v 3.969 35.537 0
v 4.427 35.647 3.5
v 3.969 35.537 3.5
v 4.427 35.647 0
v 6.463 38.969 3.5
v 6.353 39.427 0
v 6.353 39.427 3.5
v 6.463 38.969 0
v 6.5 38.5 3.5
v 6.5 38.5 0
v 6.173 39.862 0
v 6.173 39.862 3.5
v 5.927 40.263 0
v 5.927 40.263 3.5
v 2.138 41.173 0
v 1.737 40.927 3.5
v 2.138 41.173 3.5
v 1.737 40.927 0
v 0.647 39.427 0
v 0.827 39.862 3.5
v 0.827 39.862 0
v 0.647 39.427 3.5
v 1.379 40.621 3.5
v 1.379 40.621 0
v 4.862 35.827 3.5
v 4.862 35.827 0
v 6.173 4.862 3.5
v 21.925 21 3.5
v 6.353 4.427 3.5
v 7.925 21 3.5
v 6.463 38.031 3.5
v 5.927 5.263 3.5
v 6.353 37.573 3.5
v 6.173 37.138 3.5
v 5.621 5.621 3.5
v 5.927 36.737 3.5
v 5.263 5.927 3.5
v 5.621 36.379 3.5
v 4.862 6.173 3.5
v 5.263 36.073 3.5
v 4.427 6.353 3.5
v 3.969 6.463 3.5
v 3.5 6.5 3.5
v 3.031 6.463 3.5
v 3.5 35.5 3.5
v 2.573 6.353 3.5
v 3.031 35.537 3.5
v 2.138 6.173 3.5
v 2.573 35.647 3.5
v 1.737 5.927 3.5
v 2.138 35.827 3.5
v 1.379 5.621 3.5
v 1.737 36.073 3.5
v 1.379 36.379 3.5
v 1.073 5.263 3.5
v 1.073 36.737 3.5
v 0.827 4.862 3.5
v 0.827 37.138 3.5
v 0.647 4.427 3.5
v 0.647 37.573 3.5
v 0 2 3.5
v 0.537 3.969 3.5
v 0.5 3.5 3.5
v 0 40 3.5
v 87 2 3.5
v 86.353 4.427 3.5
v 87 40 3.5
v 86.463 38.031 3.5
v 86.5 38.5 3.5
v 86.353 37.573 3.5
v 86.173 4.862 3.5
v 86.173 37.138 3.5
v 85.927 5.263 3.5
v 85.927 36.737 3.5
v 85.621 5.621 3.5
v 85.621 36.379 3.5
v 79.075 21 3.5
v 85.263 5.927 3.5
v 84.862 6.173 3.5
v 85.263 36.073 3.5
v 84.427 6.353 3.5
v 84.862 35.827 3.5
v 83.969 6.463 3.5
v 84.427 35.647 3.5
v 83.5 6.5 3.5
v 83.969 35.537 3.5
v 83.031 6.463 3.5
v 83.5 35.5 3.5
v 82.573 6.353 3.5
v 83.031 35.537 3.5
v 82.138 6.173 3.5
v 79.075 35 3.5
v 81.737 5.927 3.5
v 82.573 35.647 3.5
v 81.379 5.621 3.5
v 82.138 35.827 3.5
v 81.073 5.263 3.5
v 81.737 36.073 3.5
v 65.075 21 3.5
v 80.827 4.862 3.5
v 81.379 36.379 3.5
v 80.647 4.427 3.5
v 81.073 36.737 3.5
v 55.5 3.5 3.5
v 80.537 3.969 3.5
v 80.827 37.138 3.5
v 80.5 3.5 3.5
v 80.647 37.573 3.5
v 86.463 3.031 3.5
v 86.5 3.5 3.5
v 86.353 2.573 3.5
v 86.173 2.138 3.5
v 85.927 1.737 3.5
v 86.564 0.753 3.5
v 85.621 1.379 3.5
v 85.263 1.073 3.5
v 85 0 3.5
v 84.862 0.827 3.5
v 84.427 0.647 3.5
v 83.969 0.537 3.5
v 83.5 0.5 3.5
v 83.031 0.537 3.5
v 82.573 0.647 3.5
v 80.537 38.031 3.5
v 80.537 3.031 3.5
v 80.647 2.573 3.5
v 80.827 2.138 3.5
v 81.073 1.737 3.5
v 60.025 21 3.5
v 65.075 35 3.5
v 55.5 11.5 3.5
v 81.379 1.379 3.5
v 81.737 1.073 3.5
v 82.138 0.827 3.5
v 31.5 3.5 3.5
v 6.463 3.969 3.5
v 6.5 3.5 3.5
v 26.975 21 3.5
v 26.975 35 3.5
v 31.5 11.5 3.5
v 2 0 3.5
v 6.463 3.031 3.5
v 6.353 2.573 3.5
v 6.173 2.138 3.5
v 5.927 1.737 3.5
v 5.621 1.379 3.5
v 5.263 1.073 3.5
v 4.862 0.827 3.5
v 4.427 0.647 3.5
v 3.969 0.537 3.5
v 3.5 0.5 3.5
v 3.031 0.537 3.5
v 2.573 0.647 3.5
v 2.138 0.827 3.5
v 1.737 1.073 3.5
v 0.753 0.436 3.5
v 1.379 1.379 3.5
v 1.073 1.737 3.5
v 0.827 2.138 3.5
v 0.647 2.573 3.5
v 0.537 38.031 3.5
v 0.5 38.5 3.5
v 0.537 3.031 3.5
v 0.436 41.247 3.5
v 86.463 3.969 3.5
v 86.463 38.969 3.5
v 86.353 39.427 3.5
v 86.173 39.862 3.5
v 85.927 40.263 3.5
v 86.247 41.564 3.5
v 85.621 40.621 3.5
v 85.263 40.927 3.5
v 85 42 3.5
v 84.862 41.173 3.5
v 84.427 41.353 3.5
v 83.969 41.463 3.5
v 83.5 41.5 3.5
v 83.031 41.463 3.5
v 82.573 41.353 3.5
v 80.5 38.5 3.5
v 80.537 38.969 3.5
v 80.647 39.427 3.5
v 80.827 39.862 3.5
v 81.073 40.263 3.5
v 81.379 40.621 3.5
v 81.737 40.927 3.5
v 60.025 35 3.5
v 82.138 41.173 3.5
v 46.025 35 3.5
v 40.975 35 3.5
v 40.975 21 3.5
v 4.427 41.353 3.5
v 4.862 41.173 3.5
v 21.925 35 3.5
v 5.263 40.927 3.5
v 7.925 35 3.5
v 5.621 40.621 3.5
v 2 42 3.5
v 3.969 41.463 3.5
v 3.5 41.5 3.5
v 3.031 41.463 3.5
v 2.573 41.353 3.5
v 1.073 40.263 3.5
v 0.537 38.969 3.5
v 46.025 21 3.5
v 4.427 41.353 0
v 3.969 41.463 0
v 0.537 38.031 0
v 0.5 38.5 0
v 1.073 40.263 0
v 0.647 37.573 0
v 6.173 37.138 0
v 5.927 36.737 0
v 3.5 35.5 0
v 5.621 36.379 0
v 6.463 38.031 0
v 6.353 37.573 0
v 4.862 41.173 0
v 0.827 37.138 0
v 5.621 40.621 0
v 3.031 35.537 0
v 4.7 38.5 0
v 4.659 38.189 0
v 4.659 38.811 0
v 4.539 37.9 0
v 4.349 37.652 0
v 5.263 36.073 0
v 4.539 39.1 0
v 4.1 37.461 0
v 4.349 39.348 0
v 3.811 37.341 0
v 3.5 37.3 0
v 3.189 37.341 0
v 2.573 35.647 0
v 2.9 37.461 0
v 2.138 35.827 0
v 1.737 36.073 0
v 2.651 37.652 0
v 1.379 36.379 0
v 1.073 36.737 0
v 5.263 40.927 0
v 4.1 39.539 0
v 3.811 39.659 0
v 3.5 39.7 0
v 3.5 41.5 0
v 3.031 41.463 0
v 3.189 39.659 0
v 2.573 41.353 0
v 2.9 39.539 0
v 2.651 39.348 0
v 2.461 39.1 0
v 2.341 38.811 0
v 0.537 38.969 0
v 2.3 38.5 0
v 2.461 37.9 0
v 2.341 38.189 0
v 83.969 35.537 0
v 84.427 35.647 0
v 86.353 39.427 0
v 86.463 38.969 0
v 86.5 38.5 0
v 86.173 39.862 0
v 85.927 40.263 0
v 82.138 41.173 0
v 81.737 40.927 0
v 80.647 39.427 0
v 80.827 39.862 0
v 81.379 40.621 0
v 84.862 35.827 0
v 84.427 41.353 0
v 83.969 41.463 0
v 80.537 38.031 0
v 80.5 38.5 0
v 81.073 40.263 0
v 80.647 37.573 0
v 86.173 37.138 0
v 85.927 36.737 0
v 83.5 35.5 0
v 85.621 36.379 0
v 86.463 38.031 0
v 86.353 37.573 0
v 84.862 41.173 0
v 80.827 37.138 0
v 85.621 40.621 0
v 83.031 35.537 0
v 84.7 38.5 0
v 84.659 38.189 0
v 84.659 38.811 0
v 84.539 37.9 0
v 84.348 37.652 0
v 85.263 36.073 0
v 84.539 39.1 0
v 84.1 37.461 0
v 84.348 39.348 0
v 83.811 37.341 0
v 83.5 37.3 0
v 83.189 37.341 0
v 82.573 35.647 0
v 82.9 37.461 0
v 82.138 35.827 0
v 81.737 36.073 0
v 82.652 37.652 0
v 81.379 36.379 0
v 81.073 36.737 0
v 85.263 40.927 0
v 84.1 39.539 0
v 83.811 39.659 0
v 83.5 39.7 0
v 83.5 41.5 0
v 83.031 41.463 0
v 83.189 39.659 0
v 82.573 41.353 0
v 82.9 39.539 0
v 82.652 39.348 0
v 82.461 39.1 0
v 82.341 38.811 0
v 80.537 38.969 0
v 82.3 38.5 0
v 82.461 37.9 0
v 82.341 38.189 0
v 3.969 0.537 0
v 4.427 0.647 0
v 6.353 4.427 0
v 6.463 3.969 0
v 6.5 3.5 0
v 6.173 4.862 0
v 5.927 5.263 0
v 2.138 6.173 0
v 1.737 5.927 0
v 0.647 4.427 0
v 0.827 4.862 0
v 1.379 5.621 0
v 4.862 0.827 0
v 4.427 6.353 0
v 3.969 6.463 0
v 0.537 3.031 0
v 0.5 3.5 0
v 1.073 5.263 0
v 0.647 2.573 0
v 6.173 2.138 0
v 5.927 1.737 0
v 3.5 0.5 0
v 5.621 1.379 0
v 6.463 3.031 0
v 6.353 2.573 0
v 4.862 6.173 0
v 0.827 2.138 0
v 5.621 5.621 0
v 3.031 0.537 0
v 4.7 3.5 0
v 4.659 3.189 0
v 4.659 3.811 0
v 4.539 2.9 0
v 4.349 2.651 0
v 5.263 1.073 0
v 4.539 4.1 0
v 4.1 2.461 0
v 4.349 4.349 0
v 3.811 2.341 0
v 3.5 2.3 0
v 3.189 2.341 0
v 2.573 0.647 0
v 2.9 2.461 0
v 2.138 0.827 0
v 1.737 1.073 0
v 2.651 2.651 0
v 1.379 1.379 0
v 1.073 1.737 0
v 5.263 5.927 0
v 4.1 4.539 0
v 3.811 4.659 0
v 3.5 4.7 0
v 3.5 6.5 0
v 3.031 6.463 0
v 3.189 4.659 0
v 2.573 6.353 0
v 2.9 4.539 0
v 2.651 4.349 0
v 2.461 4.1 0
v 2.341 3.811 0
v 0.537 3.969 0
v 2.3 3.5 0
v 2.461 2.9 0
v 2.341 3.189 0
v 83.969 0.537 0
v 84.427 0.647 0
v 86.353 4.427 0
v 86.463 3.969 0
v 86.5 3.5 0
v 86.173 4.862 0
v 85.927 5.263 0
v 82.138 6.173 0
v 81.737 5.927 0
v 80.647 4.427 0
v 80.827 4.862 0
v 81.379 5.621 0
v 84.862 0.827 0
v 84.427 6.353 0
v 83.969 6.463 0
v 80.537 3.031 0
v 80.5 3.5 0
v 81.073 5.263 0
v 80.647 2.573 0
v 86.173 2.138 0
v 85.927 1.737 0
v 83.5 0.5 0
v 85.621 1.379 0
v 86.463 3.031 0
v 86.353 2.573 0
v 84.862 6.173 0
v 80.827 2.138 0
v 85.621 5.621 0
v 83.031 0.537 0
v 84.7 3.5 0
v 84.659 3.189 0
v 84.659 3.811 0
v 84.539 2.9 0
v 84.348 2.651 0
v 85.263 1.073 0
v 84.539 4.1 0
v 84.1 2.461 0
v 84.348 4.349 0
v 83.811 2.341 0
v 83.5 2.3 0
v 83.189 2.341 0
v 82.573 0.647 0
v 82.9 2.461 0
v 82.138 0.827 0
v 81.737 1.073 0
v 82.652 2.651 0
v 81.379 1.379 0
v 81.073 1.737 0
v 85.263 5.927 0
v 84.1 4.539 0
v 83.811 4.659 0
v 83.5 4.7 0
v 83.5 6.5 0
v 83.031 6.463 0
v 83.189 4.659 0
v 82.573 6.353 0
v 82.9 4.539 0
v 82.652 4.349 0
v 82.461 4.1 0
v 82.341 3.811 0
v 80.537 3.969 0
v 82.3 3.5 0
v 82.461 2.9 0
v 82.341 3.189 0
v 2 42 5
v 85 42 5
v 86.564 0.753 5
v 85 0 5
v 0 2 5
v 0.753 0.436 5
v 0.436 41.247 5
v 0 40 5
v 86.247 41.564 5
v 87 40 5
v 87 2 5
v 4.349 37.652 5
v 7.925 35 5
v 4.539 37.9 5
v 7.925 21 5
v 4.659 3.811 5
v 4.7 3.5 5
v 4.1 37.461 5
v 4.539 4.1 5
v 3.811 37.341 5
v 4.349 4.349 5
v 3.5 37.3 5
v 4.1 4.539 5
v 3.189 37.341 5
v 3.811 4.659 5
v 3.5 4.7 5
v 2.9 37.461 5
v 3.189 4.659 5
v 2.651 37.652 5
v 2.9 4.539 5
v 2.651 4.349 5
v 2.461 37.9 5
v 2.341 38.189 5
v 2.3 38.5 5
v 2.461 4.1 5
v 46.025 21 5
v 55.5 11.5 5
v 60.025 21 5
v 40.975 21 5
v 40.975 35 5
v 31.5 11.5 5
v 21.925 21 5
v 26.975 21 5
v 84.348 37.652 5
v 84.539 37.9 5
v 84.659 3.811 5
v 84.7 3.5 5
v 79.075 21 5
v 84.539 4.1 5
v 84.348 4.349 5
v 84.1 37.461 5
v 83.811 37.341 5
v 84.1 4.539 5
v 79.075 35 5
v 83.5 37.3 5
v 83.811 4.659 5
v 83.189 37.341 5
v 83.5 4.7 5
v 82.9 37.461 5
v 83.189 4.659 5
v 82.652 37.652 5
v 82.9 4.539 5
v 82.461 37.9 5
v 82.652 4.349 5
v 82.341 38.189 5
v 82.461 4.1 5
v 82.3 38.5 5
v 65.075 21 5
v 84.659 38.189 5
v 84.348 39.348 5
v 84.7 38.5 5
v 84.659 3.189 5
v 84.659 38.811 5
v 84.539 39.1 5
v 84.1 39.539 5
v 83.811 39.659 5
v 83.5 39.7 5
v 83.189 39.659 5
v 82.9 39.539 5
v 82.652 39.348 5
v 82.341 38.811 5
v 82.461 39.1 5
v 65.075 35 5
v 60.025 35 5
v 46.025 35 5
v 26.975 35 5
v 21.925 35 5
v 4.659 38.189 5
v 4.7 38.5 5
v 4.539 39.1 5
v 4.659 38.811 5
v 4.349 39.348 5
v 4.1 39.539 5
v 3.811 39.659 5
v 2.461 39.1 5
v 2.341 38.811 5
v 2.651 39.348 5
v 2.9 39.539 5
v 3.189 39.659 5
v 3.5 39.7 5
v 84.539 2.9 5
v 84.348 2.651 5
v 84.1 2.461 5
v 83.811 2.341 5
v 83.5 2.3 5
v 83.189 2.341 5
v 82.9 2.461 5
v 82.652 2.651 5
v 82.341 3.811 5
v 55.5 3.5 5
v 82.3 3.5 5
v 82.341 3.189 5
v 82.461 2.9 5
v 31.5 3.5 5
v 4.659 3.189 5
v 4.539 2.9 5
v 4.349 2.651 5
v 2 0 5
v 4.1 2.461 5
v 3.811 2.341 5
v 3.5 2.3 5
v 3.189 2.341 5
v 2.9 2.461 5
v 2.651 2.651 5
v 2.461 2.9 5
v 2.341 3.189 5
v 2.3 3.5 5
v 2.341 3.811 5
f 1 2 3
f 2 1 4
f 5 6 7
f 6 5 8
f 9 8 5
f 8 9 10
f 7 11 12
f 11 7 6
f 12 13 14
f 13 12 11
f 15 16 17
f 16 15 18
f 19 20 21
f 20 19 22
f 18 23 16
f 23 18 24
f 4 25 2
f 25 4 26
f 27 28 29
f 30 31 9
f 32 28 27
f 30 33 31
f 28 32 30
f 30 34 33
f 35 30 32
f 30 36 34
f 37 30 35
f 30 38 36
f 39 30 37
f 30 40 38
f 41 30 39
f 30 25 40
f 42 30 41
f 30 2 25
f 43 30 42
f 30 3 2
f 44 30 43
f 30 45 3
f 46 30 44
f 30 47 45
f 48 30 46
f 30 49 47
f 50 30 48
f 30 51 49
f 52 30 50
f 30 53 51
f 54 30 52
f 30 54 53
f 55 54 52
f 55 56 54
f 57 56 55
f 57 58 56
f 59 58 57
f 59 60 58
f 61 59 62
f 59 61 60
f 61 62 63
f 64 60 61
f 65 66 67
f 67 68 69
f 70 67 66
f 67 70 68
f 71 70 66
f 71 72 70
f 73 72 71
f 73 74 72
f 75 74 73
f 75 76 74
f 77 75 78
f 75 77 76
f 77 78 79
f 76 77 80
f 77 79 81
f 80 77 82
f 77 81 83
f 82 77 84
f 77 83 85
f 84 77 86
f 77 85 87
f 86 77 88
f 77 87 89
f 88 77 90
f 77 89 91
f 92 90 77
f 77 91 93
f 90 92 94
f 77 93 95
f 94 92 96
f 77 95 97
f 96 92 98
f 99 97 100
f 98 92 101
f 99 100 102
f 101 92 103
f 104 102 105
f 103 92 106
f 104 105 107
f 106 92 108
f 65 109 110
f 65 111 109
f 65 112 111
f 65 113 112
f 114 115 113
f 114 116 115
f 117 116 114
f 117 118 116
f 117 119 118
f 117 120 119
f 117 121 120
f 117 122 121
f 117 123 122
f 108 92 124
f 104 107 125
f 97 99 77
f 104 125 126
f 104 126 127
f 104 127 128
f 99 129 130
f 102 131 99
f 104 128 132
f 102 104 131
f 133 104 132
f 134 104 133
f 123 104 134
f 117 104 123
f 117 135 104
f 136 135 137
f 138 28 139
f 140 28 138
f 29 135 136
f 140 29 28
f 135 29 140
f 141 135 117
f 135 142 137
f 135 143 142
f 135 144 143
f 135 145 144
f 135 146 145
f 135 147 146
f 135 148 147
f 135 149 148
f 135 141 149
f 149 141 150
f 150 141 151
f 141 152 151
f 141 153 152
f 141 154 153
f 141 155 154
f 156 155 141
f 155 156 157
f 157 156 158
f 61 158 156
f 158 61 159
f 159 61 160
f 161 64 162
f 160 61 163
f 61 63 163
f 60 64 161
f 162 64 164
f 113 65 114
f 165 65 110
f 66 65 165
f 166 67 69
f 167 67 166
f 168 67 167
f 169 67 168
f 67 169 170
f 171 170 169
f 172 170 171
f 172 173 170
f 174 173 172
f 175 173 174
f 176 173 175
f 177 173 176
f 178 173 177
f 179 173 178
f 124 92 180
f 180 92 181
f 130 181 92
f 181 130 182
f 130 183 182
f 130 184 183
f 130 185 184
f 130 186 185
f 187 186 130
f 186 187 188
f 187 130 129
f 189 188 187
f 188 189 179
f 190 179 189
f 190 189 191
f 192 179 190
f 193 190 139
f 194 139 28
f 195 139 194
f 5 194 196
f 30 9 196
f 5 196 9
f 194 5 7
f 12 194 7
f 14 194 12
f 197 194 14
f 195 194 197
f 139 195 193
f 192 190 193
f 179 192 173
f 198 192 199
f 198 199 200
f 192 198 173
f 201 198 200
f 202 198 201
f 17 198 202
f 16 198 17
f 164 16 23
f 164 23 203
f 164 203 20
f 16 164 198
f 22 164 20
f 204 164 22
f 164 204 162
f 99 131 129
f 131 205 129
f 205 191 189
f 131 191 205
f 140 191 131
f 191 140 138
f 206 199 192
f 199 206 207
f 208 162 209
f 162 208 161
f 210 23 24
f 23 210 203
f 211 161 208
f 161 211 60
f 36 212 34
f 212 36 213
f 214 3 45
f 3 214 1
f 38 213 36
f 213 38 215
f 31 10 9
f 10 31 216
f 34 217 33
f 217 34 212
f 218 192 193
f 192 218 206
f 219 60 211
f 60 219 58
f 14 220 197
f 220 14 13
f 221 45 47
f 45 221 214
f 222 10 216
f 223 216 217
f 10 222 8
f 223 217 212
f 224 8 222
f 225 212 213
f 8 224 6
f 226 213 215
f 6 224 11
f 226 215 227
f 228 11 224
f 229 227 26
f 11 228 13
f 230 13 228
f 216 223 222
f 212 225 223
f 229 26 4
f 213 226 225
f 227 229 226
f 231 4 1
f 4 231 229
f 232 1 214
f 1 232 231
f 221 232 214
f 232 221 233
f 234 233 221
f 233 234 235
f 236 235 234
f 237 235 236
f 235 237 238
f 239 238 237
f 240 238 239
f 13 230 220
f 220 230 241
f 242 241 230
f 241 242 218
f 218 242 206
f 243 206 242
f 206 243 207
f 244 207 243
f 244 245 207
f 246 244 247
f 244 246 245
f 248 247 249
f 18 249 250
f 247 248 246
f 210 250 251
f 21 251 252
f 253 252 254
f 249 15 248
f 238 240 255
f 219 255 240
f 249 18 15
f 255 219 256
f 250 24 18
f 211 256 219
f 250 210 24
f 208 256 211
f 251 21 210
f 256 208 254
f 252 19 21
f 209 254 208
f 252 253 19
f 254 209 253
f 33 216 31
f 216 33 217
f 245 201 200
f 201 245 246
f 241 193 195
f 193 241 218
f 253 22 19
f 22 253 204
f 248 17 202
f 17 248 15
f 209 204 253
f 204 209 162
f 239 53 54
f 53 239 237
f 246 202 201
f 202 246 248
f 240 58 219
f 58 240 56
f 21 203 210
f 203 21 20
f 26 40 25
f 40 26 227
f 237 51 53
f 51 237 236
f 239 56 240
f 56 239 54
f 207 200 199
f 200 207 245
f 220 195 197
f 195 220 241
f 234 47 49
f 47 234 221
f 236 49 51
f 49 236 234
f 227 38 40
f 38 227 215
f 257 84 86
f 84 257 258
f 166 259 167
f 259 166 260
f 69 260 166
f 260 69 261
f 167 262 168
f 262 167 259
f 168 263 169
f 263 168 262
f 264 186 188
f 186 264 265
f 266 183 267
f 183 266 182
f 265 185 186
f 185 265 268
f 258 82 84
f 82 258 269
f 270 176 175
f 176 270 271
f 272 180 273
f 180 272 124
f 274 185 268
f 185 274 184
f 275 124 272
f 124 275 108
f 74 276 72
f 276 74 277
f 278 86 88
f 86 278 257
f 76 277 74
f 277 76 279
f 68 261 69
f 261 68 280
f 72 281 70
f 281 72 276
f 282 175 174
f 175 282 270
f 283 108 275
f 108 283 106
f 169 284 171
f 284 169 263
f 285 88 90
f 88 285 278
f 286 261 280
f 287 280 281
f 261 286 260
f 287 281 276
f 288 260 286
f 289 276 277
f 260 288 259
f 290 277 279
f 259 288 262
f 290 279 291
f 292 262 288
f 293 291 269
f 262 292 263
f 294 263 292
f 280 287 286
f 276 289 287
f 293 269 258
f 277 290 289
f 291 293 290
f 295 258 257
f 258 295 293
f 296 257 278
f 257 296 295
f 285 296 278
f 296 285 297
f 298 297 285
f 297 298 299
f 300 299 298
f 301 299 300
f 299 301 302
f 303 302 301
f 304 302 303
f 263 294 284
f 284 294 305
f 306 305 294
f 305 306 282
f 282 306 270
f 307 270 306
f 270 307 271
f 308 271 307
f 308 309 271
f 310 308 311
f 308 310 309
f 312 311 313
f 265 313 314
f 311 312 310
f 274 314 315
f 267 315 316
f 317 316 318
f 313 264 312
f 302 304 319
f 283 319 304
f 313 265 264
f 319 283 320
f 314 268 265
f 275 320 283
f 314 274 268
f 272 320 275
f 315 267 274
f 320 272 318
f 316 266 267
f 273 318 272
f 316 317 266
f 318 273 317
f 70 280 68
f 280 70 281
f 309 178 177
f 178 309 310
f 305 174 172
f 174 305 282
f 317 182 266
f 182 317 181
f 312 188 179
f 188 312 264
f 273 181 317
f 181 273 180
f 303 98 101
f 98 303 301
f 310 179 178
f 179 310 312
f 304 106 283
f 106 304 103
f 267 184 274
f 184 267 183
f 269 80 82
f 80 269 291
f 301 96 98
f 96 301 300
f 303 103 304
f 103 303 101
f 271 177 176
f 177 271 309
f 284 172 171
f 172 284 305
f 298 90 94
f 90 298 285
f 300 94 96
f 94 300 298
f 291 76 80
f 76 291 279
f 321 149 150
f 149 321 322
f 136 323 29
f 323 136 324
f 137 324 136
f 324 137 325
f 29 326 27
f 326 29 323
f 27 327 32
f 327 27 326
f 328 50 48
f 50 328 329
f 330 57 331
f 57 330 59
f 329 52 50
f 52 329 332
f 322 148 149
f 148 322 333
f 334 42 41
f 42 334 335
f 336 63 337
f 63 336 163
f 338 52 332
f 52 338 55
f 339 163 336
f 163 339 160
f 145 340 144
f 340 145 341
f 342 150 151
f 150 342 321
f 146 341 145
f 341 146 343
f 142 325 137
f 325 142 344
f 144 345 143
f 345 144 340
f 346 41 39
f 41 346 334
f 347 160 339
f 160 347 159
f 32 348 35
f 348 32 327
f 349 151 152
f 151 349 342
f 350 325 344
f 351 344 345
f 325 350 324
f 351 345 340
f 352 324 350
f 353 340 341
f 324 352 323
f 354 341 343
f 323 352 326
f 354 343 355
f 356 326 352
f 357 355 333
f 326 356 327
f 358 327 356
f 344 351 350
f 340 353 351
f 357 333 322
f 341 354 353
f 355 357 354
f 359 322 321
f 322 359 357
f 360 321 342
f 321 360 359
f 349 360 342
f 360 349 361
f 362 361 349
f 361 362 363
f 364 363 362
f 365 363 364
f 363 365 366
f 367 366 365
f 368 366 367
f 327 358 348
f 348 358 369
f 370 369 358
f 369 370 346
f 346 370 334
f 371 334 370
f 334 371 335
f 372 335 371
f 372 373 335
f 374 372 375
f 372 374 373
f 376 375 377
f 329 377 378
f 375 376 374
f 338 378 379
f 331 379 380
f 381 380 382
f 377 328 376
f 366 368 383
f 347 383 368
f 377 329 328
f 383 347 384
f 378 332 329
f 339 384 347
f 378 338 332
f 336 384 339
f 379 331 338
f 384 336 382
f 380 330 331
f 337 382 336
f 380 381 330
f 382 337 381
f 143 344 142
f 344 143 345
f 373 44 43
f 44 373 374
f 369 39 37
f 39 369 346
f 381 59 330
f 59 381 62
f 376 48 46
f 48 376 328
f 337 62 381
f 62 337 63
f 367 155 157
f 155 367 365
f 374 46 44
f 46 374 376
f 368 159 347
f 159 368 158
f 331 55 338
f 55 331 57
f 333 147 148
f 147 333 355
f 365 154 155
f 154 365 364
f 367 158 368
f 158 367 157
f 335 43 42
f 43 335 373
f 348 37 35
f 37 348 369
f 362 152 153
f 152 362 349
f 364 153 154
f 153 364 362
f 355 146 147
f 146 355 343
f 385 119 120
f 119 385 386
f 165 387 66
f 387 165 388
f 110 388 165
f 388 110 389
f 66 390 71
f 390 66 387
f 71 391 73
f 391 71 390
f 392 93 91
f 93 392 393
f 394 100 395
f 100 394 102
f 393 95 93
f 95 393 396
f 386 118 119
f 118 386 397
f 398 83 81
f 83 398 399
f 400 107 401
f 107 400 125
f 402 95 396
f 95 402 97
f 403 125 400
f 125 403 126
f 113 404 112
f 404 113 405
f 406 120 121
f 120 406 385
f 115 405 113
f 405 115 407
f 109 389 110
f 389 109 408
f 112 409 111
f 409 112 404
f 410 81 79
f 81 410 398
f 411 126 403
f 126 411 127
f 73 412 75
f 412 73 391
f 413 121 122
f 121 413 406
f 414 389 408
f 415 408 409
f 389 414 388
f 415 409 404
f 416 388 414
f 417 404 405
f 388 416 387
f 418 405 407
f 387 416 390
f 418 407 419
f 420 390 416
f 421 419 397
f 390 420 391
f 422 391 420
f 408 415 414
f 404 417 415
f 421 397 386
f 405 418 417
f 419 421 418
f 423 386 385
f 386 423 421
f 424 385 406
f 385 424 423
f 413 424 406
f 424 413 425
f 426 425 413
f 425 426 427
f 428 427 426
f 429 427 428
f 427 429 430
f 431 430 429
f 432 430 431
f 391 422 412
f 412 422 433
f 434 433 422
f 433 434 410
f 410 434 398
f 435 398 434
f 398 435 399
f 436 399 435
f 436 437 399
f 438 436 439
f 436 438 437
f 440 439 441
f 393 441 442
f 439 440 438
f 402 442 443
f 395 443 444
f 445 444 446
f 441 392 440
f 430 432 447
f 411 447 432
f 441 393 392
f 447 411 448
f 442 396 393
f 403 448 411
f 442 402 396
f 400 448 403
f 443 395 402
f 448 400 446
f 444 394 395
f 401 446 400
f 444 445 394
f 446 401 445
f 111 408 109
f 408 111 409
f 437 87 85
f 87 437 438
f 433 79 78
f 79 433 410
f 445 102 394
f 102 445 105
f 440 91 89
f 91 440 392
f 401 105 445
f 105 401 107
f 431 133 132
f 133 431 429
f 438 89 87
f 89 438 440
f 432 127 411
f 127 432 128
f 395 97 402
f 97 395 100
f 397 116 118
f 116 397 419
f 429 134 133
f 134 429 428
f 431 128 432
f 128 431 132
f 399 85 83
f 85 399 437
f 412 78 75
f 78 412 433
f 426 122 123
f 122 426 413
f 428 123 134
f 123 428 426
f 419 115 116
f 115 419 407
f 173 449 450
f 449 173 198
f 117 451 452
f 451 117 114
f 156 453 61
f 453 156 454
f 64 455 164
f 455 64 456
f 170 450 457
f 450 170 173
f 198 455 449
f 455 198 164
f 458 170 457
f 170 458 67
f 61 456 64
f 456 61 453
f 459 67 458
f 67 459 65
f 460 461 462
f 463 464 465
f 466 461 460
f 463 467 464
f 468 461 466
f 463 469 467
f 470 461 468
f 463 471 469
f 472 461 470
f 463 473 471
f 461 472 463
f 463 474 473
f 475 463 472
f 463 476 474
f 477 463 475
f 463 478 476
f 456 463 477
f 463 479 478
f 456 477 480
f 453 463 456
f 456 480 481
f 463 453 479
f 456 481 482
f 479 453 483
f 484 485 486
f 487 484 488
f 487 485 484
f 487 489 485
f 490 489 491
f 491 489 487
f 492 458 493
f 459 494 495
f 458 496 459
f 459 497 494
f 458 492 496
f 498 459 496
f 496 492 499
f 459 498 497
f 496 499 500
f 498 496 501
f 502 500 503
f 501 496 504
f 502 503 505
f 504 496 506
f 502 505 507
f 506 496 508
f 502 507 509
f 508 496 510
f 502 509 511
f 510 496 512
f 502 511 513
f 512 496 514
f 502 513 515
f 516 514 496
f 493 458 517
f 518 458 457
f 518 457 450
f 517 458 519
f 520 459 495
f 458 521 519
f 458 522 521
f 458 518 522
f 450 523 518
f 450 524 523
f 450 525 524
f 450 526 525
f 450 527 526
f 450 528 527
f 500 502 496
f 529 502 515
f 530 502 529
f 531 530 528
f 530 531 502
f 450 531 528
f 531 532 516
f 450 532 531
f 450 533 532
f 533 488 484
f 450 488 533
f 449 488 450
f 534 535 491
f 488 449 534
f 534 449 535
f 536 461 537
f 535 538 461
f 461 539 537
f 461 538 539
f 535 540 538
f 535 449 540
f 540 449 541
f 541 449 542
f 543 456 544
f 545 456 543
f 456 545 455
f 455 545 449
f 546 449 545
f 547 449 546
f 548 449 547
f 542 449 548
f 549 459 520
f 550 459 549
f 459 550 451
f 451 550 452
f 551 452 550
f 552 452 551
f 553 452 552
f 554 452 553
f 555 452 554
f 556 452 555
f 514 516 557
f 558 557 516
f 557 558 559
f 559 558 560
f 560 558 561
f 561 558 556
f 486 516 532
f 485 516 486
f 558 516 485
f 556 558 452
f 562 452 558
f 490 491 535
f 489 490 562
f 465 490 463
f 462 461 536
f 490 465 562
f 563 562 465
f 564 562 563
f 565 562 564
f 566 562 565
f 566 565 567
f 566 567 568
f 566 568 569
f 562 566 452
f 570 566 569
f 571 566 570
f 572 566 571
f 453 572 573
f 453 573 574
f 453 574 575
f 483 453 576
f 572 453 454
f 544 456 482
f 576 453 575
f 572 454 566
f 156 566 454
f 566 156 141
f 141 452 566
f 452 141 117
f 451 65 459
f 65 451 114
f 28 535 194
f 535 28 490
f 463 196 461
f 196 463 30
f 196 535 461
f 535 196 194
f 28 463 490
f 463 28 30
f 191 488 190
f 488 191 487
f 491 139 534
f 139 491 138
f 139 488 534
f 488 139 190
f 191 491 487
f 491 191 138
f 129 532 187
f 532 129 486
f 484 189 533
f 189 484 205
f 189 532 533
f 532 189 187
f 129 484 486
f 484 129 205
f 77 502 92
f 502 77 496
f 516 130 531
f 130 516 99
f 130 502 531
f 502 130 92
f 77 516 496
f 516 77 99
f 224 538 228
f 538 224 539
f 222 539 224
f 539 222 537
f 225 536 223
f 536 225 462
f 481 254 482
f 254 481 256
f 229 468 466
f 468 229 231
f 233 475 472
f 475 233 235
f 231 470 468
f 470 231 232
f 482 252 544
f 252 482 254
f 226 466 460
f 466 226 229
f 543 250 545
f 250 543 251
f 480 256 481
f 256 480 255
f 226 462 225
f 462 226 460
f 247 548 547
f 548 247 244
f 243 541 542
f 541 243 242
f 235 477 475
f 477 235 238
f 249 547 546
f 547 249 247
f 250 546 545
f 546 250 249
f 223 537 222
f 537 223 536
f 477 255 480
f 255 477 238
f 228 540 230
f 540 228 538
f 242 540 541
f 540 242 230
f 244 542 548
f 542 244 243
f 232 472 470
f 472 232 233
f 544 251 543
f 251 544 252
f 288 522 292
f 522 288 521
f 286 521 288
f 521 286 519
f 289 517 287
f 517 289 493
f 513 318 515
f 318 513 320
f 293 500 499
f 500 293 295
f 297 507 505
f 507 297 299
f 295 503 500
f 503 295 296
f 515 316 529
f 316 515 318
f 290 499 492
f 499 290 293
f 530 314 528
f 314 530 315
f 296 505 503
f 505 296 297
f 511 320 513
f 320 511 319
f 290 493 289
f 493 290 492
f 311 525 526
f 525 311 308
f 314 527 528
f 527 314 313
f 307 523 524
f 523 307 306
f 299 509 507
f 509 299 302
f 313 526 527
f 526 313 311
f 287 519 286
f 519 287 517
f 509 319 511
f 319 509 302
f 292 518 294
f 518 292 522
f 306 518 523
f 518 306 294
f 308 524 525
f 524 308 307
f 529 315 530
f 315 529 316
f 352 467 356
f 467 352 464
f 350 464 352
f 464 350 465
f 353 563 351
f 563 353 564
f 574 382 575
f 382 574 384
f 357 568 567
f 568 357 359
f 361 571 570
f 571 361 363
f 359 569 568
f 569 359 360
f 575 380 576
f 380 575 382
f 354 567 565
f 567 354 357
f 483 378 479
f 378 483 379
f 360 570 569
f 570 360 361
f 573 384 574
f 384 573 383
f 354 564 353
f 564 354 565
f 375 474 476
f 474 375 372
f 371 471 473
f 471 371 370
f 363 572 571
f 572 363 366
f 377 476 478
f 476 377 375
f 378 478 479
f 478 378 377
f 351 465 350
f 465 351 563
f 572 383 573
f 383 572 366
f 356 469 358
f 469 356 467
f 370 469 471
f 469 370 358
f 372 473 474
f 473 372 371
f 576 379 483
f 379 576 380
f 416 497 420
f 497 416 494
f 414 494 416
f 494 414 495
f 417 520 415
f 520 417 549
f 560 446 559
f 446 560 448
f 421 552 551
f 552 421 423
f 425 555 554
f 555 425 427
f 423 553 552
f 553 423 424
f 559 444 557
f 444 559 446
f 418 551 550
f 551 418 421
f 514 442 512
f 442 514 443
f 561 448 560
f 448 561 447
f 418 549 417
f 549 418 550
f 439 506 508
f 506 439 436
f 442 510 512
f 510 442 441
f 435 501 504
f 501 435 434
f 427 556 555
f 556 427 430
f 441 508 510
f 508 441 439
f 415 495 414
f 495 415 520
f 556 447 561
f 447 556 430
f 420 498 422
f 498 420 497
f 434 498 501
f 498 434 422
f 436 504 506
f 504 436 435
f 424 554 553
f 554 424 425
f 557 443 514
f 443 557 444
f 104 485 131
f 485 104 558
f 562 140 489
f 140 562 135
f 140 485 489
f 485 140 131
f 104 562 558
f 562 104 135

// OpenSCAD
// 3D-printable switch plate for the LMN-3 HE key test board (87 x 42 mm).
// MX geometry: plate top 5.0 mm above the PCB top -> 1.5 mm plate on 3.5 mm legs.
// Print flat, PLA/PETG, 0.2 mm layers, 100% infill for the plate area. Fasten with 4x M2x8 screws + nuts.
W = 87; D = 42; T = 1.5; LEG = 3.5;
CUT = 14.0;          // switch cutout; raise to 14.1 if the switches are too tight in your print
KY = 14.0; U = 19.05;
holes = [[3.5,3.5],[W-3.5,3.5],[3.5,D-3.5],[W-3.5,D-3.5]];
keys = [for (i=[0:3]) [W/2 + U*(i-1.5), KY]];
// PCB y runs downward; OpenSCAD y runs upward -> mirror y so the print matches the board seen from the top
function m(p) = [p[0], D - p[1]];
difference() {
  union() {
    translate([0,0,LEG]) linear_extrude(T) offset(r=2) offset(delta=-2) square([W, D]);
    for (h = holes) translate([m(h)[0], m(h)[1], 0]) cylinder(d=6, h=LEG, $fn=40);
  }
  for (k = keys) translate([m(k)[0]-CUT/2, m(k)[1]-CUT/2, -1]) cube([CUT, CUT, 20]);
  for (h = holes) translate([m(h)[0], m(h)[1], -1]) cylinder(d=2.4, h=20, $fn=24);
  // window for the 1x8 header J1 (pins stick up through the plate; jumper wires plug in from the top)
  translate([W/2-12, m([0,38.5])[1], -1]) cube([24, 8, 20]);
}
